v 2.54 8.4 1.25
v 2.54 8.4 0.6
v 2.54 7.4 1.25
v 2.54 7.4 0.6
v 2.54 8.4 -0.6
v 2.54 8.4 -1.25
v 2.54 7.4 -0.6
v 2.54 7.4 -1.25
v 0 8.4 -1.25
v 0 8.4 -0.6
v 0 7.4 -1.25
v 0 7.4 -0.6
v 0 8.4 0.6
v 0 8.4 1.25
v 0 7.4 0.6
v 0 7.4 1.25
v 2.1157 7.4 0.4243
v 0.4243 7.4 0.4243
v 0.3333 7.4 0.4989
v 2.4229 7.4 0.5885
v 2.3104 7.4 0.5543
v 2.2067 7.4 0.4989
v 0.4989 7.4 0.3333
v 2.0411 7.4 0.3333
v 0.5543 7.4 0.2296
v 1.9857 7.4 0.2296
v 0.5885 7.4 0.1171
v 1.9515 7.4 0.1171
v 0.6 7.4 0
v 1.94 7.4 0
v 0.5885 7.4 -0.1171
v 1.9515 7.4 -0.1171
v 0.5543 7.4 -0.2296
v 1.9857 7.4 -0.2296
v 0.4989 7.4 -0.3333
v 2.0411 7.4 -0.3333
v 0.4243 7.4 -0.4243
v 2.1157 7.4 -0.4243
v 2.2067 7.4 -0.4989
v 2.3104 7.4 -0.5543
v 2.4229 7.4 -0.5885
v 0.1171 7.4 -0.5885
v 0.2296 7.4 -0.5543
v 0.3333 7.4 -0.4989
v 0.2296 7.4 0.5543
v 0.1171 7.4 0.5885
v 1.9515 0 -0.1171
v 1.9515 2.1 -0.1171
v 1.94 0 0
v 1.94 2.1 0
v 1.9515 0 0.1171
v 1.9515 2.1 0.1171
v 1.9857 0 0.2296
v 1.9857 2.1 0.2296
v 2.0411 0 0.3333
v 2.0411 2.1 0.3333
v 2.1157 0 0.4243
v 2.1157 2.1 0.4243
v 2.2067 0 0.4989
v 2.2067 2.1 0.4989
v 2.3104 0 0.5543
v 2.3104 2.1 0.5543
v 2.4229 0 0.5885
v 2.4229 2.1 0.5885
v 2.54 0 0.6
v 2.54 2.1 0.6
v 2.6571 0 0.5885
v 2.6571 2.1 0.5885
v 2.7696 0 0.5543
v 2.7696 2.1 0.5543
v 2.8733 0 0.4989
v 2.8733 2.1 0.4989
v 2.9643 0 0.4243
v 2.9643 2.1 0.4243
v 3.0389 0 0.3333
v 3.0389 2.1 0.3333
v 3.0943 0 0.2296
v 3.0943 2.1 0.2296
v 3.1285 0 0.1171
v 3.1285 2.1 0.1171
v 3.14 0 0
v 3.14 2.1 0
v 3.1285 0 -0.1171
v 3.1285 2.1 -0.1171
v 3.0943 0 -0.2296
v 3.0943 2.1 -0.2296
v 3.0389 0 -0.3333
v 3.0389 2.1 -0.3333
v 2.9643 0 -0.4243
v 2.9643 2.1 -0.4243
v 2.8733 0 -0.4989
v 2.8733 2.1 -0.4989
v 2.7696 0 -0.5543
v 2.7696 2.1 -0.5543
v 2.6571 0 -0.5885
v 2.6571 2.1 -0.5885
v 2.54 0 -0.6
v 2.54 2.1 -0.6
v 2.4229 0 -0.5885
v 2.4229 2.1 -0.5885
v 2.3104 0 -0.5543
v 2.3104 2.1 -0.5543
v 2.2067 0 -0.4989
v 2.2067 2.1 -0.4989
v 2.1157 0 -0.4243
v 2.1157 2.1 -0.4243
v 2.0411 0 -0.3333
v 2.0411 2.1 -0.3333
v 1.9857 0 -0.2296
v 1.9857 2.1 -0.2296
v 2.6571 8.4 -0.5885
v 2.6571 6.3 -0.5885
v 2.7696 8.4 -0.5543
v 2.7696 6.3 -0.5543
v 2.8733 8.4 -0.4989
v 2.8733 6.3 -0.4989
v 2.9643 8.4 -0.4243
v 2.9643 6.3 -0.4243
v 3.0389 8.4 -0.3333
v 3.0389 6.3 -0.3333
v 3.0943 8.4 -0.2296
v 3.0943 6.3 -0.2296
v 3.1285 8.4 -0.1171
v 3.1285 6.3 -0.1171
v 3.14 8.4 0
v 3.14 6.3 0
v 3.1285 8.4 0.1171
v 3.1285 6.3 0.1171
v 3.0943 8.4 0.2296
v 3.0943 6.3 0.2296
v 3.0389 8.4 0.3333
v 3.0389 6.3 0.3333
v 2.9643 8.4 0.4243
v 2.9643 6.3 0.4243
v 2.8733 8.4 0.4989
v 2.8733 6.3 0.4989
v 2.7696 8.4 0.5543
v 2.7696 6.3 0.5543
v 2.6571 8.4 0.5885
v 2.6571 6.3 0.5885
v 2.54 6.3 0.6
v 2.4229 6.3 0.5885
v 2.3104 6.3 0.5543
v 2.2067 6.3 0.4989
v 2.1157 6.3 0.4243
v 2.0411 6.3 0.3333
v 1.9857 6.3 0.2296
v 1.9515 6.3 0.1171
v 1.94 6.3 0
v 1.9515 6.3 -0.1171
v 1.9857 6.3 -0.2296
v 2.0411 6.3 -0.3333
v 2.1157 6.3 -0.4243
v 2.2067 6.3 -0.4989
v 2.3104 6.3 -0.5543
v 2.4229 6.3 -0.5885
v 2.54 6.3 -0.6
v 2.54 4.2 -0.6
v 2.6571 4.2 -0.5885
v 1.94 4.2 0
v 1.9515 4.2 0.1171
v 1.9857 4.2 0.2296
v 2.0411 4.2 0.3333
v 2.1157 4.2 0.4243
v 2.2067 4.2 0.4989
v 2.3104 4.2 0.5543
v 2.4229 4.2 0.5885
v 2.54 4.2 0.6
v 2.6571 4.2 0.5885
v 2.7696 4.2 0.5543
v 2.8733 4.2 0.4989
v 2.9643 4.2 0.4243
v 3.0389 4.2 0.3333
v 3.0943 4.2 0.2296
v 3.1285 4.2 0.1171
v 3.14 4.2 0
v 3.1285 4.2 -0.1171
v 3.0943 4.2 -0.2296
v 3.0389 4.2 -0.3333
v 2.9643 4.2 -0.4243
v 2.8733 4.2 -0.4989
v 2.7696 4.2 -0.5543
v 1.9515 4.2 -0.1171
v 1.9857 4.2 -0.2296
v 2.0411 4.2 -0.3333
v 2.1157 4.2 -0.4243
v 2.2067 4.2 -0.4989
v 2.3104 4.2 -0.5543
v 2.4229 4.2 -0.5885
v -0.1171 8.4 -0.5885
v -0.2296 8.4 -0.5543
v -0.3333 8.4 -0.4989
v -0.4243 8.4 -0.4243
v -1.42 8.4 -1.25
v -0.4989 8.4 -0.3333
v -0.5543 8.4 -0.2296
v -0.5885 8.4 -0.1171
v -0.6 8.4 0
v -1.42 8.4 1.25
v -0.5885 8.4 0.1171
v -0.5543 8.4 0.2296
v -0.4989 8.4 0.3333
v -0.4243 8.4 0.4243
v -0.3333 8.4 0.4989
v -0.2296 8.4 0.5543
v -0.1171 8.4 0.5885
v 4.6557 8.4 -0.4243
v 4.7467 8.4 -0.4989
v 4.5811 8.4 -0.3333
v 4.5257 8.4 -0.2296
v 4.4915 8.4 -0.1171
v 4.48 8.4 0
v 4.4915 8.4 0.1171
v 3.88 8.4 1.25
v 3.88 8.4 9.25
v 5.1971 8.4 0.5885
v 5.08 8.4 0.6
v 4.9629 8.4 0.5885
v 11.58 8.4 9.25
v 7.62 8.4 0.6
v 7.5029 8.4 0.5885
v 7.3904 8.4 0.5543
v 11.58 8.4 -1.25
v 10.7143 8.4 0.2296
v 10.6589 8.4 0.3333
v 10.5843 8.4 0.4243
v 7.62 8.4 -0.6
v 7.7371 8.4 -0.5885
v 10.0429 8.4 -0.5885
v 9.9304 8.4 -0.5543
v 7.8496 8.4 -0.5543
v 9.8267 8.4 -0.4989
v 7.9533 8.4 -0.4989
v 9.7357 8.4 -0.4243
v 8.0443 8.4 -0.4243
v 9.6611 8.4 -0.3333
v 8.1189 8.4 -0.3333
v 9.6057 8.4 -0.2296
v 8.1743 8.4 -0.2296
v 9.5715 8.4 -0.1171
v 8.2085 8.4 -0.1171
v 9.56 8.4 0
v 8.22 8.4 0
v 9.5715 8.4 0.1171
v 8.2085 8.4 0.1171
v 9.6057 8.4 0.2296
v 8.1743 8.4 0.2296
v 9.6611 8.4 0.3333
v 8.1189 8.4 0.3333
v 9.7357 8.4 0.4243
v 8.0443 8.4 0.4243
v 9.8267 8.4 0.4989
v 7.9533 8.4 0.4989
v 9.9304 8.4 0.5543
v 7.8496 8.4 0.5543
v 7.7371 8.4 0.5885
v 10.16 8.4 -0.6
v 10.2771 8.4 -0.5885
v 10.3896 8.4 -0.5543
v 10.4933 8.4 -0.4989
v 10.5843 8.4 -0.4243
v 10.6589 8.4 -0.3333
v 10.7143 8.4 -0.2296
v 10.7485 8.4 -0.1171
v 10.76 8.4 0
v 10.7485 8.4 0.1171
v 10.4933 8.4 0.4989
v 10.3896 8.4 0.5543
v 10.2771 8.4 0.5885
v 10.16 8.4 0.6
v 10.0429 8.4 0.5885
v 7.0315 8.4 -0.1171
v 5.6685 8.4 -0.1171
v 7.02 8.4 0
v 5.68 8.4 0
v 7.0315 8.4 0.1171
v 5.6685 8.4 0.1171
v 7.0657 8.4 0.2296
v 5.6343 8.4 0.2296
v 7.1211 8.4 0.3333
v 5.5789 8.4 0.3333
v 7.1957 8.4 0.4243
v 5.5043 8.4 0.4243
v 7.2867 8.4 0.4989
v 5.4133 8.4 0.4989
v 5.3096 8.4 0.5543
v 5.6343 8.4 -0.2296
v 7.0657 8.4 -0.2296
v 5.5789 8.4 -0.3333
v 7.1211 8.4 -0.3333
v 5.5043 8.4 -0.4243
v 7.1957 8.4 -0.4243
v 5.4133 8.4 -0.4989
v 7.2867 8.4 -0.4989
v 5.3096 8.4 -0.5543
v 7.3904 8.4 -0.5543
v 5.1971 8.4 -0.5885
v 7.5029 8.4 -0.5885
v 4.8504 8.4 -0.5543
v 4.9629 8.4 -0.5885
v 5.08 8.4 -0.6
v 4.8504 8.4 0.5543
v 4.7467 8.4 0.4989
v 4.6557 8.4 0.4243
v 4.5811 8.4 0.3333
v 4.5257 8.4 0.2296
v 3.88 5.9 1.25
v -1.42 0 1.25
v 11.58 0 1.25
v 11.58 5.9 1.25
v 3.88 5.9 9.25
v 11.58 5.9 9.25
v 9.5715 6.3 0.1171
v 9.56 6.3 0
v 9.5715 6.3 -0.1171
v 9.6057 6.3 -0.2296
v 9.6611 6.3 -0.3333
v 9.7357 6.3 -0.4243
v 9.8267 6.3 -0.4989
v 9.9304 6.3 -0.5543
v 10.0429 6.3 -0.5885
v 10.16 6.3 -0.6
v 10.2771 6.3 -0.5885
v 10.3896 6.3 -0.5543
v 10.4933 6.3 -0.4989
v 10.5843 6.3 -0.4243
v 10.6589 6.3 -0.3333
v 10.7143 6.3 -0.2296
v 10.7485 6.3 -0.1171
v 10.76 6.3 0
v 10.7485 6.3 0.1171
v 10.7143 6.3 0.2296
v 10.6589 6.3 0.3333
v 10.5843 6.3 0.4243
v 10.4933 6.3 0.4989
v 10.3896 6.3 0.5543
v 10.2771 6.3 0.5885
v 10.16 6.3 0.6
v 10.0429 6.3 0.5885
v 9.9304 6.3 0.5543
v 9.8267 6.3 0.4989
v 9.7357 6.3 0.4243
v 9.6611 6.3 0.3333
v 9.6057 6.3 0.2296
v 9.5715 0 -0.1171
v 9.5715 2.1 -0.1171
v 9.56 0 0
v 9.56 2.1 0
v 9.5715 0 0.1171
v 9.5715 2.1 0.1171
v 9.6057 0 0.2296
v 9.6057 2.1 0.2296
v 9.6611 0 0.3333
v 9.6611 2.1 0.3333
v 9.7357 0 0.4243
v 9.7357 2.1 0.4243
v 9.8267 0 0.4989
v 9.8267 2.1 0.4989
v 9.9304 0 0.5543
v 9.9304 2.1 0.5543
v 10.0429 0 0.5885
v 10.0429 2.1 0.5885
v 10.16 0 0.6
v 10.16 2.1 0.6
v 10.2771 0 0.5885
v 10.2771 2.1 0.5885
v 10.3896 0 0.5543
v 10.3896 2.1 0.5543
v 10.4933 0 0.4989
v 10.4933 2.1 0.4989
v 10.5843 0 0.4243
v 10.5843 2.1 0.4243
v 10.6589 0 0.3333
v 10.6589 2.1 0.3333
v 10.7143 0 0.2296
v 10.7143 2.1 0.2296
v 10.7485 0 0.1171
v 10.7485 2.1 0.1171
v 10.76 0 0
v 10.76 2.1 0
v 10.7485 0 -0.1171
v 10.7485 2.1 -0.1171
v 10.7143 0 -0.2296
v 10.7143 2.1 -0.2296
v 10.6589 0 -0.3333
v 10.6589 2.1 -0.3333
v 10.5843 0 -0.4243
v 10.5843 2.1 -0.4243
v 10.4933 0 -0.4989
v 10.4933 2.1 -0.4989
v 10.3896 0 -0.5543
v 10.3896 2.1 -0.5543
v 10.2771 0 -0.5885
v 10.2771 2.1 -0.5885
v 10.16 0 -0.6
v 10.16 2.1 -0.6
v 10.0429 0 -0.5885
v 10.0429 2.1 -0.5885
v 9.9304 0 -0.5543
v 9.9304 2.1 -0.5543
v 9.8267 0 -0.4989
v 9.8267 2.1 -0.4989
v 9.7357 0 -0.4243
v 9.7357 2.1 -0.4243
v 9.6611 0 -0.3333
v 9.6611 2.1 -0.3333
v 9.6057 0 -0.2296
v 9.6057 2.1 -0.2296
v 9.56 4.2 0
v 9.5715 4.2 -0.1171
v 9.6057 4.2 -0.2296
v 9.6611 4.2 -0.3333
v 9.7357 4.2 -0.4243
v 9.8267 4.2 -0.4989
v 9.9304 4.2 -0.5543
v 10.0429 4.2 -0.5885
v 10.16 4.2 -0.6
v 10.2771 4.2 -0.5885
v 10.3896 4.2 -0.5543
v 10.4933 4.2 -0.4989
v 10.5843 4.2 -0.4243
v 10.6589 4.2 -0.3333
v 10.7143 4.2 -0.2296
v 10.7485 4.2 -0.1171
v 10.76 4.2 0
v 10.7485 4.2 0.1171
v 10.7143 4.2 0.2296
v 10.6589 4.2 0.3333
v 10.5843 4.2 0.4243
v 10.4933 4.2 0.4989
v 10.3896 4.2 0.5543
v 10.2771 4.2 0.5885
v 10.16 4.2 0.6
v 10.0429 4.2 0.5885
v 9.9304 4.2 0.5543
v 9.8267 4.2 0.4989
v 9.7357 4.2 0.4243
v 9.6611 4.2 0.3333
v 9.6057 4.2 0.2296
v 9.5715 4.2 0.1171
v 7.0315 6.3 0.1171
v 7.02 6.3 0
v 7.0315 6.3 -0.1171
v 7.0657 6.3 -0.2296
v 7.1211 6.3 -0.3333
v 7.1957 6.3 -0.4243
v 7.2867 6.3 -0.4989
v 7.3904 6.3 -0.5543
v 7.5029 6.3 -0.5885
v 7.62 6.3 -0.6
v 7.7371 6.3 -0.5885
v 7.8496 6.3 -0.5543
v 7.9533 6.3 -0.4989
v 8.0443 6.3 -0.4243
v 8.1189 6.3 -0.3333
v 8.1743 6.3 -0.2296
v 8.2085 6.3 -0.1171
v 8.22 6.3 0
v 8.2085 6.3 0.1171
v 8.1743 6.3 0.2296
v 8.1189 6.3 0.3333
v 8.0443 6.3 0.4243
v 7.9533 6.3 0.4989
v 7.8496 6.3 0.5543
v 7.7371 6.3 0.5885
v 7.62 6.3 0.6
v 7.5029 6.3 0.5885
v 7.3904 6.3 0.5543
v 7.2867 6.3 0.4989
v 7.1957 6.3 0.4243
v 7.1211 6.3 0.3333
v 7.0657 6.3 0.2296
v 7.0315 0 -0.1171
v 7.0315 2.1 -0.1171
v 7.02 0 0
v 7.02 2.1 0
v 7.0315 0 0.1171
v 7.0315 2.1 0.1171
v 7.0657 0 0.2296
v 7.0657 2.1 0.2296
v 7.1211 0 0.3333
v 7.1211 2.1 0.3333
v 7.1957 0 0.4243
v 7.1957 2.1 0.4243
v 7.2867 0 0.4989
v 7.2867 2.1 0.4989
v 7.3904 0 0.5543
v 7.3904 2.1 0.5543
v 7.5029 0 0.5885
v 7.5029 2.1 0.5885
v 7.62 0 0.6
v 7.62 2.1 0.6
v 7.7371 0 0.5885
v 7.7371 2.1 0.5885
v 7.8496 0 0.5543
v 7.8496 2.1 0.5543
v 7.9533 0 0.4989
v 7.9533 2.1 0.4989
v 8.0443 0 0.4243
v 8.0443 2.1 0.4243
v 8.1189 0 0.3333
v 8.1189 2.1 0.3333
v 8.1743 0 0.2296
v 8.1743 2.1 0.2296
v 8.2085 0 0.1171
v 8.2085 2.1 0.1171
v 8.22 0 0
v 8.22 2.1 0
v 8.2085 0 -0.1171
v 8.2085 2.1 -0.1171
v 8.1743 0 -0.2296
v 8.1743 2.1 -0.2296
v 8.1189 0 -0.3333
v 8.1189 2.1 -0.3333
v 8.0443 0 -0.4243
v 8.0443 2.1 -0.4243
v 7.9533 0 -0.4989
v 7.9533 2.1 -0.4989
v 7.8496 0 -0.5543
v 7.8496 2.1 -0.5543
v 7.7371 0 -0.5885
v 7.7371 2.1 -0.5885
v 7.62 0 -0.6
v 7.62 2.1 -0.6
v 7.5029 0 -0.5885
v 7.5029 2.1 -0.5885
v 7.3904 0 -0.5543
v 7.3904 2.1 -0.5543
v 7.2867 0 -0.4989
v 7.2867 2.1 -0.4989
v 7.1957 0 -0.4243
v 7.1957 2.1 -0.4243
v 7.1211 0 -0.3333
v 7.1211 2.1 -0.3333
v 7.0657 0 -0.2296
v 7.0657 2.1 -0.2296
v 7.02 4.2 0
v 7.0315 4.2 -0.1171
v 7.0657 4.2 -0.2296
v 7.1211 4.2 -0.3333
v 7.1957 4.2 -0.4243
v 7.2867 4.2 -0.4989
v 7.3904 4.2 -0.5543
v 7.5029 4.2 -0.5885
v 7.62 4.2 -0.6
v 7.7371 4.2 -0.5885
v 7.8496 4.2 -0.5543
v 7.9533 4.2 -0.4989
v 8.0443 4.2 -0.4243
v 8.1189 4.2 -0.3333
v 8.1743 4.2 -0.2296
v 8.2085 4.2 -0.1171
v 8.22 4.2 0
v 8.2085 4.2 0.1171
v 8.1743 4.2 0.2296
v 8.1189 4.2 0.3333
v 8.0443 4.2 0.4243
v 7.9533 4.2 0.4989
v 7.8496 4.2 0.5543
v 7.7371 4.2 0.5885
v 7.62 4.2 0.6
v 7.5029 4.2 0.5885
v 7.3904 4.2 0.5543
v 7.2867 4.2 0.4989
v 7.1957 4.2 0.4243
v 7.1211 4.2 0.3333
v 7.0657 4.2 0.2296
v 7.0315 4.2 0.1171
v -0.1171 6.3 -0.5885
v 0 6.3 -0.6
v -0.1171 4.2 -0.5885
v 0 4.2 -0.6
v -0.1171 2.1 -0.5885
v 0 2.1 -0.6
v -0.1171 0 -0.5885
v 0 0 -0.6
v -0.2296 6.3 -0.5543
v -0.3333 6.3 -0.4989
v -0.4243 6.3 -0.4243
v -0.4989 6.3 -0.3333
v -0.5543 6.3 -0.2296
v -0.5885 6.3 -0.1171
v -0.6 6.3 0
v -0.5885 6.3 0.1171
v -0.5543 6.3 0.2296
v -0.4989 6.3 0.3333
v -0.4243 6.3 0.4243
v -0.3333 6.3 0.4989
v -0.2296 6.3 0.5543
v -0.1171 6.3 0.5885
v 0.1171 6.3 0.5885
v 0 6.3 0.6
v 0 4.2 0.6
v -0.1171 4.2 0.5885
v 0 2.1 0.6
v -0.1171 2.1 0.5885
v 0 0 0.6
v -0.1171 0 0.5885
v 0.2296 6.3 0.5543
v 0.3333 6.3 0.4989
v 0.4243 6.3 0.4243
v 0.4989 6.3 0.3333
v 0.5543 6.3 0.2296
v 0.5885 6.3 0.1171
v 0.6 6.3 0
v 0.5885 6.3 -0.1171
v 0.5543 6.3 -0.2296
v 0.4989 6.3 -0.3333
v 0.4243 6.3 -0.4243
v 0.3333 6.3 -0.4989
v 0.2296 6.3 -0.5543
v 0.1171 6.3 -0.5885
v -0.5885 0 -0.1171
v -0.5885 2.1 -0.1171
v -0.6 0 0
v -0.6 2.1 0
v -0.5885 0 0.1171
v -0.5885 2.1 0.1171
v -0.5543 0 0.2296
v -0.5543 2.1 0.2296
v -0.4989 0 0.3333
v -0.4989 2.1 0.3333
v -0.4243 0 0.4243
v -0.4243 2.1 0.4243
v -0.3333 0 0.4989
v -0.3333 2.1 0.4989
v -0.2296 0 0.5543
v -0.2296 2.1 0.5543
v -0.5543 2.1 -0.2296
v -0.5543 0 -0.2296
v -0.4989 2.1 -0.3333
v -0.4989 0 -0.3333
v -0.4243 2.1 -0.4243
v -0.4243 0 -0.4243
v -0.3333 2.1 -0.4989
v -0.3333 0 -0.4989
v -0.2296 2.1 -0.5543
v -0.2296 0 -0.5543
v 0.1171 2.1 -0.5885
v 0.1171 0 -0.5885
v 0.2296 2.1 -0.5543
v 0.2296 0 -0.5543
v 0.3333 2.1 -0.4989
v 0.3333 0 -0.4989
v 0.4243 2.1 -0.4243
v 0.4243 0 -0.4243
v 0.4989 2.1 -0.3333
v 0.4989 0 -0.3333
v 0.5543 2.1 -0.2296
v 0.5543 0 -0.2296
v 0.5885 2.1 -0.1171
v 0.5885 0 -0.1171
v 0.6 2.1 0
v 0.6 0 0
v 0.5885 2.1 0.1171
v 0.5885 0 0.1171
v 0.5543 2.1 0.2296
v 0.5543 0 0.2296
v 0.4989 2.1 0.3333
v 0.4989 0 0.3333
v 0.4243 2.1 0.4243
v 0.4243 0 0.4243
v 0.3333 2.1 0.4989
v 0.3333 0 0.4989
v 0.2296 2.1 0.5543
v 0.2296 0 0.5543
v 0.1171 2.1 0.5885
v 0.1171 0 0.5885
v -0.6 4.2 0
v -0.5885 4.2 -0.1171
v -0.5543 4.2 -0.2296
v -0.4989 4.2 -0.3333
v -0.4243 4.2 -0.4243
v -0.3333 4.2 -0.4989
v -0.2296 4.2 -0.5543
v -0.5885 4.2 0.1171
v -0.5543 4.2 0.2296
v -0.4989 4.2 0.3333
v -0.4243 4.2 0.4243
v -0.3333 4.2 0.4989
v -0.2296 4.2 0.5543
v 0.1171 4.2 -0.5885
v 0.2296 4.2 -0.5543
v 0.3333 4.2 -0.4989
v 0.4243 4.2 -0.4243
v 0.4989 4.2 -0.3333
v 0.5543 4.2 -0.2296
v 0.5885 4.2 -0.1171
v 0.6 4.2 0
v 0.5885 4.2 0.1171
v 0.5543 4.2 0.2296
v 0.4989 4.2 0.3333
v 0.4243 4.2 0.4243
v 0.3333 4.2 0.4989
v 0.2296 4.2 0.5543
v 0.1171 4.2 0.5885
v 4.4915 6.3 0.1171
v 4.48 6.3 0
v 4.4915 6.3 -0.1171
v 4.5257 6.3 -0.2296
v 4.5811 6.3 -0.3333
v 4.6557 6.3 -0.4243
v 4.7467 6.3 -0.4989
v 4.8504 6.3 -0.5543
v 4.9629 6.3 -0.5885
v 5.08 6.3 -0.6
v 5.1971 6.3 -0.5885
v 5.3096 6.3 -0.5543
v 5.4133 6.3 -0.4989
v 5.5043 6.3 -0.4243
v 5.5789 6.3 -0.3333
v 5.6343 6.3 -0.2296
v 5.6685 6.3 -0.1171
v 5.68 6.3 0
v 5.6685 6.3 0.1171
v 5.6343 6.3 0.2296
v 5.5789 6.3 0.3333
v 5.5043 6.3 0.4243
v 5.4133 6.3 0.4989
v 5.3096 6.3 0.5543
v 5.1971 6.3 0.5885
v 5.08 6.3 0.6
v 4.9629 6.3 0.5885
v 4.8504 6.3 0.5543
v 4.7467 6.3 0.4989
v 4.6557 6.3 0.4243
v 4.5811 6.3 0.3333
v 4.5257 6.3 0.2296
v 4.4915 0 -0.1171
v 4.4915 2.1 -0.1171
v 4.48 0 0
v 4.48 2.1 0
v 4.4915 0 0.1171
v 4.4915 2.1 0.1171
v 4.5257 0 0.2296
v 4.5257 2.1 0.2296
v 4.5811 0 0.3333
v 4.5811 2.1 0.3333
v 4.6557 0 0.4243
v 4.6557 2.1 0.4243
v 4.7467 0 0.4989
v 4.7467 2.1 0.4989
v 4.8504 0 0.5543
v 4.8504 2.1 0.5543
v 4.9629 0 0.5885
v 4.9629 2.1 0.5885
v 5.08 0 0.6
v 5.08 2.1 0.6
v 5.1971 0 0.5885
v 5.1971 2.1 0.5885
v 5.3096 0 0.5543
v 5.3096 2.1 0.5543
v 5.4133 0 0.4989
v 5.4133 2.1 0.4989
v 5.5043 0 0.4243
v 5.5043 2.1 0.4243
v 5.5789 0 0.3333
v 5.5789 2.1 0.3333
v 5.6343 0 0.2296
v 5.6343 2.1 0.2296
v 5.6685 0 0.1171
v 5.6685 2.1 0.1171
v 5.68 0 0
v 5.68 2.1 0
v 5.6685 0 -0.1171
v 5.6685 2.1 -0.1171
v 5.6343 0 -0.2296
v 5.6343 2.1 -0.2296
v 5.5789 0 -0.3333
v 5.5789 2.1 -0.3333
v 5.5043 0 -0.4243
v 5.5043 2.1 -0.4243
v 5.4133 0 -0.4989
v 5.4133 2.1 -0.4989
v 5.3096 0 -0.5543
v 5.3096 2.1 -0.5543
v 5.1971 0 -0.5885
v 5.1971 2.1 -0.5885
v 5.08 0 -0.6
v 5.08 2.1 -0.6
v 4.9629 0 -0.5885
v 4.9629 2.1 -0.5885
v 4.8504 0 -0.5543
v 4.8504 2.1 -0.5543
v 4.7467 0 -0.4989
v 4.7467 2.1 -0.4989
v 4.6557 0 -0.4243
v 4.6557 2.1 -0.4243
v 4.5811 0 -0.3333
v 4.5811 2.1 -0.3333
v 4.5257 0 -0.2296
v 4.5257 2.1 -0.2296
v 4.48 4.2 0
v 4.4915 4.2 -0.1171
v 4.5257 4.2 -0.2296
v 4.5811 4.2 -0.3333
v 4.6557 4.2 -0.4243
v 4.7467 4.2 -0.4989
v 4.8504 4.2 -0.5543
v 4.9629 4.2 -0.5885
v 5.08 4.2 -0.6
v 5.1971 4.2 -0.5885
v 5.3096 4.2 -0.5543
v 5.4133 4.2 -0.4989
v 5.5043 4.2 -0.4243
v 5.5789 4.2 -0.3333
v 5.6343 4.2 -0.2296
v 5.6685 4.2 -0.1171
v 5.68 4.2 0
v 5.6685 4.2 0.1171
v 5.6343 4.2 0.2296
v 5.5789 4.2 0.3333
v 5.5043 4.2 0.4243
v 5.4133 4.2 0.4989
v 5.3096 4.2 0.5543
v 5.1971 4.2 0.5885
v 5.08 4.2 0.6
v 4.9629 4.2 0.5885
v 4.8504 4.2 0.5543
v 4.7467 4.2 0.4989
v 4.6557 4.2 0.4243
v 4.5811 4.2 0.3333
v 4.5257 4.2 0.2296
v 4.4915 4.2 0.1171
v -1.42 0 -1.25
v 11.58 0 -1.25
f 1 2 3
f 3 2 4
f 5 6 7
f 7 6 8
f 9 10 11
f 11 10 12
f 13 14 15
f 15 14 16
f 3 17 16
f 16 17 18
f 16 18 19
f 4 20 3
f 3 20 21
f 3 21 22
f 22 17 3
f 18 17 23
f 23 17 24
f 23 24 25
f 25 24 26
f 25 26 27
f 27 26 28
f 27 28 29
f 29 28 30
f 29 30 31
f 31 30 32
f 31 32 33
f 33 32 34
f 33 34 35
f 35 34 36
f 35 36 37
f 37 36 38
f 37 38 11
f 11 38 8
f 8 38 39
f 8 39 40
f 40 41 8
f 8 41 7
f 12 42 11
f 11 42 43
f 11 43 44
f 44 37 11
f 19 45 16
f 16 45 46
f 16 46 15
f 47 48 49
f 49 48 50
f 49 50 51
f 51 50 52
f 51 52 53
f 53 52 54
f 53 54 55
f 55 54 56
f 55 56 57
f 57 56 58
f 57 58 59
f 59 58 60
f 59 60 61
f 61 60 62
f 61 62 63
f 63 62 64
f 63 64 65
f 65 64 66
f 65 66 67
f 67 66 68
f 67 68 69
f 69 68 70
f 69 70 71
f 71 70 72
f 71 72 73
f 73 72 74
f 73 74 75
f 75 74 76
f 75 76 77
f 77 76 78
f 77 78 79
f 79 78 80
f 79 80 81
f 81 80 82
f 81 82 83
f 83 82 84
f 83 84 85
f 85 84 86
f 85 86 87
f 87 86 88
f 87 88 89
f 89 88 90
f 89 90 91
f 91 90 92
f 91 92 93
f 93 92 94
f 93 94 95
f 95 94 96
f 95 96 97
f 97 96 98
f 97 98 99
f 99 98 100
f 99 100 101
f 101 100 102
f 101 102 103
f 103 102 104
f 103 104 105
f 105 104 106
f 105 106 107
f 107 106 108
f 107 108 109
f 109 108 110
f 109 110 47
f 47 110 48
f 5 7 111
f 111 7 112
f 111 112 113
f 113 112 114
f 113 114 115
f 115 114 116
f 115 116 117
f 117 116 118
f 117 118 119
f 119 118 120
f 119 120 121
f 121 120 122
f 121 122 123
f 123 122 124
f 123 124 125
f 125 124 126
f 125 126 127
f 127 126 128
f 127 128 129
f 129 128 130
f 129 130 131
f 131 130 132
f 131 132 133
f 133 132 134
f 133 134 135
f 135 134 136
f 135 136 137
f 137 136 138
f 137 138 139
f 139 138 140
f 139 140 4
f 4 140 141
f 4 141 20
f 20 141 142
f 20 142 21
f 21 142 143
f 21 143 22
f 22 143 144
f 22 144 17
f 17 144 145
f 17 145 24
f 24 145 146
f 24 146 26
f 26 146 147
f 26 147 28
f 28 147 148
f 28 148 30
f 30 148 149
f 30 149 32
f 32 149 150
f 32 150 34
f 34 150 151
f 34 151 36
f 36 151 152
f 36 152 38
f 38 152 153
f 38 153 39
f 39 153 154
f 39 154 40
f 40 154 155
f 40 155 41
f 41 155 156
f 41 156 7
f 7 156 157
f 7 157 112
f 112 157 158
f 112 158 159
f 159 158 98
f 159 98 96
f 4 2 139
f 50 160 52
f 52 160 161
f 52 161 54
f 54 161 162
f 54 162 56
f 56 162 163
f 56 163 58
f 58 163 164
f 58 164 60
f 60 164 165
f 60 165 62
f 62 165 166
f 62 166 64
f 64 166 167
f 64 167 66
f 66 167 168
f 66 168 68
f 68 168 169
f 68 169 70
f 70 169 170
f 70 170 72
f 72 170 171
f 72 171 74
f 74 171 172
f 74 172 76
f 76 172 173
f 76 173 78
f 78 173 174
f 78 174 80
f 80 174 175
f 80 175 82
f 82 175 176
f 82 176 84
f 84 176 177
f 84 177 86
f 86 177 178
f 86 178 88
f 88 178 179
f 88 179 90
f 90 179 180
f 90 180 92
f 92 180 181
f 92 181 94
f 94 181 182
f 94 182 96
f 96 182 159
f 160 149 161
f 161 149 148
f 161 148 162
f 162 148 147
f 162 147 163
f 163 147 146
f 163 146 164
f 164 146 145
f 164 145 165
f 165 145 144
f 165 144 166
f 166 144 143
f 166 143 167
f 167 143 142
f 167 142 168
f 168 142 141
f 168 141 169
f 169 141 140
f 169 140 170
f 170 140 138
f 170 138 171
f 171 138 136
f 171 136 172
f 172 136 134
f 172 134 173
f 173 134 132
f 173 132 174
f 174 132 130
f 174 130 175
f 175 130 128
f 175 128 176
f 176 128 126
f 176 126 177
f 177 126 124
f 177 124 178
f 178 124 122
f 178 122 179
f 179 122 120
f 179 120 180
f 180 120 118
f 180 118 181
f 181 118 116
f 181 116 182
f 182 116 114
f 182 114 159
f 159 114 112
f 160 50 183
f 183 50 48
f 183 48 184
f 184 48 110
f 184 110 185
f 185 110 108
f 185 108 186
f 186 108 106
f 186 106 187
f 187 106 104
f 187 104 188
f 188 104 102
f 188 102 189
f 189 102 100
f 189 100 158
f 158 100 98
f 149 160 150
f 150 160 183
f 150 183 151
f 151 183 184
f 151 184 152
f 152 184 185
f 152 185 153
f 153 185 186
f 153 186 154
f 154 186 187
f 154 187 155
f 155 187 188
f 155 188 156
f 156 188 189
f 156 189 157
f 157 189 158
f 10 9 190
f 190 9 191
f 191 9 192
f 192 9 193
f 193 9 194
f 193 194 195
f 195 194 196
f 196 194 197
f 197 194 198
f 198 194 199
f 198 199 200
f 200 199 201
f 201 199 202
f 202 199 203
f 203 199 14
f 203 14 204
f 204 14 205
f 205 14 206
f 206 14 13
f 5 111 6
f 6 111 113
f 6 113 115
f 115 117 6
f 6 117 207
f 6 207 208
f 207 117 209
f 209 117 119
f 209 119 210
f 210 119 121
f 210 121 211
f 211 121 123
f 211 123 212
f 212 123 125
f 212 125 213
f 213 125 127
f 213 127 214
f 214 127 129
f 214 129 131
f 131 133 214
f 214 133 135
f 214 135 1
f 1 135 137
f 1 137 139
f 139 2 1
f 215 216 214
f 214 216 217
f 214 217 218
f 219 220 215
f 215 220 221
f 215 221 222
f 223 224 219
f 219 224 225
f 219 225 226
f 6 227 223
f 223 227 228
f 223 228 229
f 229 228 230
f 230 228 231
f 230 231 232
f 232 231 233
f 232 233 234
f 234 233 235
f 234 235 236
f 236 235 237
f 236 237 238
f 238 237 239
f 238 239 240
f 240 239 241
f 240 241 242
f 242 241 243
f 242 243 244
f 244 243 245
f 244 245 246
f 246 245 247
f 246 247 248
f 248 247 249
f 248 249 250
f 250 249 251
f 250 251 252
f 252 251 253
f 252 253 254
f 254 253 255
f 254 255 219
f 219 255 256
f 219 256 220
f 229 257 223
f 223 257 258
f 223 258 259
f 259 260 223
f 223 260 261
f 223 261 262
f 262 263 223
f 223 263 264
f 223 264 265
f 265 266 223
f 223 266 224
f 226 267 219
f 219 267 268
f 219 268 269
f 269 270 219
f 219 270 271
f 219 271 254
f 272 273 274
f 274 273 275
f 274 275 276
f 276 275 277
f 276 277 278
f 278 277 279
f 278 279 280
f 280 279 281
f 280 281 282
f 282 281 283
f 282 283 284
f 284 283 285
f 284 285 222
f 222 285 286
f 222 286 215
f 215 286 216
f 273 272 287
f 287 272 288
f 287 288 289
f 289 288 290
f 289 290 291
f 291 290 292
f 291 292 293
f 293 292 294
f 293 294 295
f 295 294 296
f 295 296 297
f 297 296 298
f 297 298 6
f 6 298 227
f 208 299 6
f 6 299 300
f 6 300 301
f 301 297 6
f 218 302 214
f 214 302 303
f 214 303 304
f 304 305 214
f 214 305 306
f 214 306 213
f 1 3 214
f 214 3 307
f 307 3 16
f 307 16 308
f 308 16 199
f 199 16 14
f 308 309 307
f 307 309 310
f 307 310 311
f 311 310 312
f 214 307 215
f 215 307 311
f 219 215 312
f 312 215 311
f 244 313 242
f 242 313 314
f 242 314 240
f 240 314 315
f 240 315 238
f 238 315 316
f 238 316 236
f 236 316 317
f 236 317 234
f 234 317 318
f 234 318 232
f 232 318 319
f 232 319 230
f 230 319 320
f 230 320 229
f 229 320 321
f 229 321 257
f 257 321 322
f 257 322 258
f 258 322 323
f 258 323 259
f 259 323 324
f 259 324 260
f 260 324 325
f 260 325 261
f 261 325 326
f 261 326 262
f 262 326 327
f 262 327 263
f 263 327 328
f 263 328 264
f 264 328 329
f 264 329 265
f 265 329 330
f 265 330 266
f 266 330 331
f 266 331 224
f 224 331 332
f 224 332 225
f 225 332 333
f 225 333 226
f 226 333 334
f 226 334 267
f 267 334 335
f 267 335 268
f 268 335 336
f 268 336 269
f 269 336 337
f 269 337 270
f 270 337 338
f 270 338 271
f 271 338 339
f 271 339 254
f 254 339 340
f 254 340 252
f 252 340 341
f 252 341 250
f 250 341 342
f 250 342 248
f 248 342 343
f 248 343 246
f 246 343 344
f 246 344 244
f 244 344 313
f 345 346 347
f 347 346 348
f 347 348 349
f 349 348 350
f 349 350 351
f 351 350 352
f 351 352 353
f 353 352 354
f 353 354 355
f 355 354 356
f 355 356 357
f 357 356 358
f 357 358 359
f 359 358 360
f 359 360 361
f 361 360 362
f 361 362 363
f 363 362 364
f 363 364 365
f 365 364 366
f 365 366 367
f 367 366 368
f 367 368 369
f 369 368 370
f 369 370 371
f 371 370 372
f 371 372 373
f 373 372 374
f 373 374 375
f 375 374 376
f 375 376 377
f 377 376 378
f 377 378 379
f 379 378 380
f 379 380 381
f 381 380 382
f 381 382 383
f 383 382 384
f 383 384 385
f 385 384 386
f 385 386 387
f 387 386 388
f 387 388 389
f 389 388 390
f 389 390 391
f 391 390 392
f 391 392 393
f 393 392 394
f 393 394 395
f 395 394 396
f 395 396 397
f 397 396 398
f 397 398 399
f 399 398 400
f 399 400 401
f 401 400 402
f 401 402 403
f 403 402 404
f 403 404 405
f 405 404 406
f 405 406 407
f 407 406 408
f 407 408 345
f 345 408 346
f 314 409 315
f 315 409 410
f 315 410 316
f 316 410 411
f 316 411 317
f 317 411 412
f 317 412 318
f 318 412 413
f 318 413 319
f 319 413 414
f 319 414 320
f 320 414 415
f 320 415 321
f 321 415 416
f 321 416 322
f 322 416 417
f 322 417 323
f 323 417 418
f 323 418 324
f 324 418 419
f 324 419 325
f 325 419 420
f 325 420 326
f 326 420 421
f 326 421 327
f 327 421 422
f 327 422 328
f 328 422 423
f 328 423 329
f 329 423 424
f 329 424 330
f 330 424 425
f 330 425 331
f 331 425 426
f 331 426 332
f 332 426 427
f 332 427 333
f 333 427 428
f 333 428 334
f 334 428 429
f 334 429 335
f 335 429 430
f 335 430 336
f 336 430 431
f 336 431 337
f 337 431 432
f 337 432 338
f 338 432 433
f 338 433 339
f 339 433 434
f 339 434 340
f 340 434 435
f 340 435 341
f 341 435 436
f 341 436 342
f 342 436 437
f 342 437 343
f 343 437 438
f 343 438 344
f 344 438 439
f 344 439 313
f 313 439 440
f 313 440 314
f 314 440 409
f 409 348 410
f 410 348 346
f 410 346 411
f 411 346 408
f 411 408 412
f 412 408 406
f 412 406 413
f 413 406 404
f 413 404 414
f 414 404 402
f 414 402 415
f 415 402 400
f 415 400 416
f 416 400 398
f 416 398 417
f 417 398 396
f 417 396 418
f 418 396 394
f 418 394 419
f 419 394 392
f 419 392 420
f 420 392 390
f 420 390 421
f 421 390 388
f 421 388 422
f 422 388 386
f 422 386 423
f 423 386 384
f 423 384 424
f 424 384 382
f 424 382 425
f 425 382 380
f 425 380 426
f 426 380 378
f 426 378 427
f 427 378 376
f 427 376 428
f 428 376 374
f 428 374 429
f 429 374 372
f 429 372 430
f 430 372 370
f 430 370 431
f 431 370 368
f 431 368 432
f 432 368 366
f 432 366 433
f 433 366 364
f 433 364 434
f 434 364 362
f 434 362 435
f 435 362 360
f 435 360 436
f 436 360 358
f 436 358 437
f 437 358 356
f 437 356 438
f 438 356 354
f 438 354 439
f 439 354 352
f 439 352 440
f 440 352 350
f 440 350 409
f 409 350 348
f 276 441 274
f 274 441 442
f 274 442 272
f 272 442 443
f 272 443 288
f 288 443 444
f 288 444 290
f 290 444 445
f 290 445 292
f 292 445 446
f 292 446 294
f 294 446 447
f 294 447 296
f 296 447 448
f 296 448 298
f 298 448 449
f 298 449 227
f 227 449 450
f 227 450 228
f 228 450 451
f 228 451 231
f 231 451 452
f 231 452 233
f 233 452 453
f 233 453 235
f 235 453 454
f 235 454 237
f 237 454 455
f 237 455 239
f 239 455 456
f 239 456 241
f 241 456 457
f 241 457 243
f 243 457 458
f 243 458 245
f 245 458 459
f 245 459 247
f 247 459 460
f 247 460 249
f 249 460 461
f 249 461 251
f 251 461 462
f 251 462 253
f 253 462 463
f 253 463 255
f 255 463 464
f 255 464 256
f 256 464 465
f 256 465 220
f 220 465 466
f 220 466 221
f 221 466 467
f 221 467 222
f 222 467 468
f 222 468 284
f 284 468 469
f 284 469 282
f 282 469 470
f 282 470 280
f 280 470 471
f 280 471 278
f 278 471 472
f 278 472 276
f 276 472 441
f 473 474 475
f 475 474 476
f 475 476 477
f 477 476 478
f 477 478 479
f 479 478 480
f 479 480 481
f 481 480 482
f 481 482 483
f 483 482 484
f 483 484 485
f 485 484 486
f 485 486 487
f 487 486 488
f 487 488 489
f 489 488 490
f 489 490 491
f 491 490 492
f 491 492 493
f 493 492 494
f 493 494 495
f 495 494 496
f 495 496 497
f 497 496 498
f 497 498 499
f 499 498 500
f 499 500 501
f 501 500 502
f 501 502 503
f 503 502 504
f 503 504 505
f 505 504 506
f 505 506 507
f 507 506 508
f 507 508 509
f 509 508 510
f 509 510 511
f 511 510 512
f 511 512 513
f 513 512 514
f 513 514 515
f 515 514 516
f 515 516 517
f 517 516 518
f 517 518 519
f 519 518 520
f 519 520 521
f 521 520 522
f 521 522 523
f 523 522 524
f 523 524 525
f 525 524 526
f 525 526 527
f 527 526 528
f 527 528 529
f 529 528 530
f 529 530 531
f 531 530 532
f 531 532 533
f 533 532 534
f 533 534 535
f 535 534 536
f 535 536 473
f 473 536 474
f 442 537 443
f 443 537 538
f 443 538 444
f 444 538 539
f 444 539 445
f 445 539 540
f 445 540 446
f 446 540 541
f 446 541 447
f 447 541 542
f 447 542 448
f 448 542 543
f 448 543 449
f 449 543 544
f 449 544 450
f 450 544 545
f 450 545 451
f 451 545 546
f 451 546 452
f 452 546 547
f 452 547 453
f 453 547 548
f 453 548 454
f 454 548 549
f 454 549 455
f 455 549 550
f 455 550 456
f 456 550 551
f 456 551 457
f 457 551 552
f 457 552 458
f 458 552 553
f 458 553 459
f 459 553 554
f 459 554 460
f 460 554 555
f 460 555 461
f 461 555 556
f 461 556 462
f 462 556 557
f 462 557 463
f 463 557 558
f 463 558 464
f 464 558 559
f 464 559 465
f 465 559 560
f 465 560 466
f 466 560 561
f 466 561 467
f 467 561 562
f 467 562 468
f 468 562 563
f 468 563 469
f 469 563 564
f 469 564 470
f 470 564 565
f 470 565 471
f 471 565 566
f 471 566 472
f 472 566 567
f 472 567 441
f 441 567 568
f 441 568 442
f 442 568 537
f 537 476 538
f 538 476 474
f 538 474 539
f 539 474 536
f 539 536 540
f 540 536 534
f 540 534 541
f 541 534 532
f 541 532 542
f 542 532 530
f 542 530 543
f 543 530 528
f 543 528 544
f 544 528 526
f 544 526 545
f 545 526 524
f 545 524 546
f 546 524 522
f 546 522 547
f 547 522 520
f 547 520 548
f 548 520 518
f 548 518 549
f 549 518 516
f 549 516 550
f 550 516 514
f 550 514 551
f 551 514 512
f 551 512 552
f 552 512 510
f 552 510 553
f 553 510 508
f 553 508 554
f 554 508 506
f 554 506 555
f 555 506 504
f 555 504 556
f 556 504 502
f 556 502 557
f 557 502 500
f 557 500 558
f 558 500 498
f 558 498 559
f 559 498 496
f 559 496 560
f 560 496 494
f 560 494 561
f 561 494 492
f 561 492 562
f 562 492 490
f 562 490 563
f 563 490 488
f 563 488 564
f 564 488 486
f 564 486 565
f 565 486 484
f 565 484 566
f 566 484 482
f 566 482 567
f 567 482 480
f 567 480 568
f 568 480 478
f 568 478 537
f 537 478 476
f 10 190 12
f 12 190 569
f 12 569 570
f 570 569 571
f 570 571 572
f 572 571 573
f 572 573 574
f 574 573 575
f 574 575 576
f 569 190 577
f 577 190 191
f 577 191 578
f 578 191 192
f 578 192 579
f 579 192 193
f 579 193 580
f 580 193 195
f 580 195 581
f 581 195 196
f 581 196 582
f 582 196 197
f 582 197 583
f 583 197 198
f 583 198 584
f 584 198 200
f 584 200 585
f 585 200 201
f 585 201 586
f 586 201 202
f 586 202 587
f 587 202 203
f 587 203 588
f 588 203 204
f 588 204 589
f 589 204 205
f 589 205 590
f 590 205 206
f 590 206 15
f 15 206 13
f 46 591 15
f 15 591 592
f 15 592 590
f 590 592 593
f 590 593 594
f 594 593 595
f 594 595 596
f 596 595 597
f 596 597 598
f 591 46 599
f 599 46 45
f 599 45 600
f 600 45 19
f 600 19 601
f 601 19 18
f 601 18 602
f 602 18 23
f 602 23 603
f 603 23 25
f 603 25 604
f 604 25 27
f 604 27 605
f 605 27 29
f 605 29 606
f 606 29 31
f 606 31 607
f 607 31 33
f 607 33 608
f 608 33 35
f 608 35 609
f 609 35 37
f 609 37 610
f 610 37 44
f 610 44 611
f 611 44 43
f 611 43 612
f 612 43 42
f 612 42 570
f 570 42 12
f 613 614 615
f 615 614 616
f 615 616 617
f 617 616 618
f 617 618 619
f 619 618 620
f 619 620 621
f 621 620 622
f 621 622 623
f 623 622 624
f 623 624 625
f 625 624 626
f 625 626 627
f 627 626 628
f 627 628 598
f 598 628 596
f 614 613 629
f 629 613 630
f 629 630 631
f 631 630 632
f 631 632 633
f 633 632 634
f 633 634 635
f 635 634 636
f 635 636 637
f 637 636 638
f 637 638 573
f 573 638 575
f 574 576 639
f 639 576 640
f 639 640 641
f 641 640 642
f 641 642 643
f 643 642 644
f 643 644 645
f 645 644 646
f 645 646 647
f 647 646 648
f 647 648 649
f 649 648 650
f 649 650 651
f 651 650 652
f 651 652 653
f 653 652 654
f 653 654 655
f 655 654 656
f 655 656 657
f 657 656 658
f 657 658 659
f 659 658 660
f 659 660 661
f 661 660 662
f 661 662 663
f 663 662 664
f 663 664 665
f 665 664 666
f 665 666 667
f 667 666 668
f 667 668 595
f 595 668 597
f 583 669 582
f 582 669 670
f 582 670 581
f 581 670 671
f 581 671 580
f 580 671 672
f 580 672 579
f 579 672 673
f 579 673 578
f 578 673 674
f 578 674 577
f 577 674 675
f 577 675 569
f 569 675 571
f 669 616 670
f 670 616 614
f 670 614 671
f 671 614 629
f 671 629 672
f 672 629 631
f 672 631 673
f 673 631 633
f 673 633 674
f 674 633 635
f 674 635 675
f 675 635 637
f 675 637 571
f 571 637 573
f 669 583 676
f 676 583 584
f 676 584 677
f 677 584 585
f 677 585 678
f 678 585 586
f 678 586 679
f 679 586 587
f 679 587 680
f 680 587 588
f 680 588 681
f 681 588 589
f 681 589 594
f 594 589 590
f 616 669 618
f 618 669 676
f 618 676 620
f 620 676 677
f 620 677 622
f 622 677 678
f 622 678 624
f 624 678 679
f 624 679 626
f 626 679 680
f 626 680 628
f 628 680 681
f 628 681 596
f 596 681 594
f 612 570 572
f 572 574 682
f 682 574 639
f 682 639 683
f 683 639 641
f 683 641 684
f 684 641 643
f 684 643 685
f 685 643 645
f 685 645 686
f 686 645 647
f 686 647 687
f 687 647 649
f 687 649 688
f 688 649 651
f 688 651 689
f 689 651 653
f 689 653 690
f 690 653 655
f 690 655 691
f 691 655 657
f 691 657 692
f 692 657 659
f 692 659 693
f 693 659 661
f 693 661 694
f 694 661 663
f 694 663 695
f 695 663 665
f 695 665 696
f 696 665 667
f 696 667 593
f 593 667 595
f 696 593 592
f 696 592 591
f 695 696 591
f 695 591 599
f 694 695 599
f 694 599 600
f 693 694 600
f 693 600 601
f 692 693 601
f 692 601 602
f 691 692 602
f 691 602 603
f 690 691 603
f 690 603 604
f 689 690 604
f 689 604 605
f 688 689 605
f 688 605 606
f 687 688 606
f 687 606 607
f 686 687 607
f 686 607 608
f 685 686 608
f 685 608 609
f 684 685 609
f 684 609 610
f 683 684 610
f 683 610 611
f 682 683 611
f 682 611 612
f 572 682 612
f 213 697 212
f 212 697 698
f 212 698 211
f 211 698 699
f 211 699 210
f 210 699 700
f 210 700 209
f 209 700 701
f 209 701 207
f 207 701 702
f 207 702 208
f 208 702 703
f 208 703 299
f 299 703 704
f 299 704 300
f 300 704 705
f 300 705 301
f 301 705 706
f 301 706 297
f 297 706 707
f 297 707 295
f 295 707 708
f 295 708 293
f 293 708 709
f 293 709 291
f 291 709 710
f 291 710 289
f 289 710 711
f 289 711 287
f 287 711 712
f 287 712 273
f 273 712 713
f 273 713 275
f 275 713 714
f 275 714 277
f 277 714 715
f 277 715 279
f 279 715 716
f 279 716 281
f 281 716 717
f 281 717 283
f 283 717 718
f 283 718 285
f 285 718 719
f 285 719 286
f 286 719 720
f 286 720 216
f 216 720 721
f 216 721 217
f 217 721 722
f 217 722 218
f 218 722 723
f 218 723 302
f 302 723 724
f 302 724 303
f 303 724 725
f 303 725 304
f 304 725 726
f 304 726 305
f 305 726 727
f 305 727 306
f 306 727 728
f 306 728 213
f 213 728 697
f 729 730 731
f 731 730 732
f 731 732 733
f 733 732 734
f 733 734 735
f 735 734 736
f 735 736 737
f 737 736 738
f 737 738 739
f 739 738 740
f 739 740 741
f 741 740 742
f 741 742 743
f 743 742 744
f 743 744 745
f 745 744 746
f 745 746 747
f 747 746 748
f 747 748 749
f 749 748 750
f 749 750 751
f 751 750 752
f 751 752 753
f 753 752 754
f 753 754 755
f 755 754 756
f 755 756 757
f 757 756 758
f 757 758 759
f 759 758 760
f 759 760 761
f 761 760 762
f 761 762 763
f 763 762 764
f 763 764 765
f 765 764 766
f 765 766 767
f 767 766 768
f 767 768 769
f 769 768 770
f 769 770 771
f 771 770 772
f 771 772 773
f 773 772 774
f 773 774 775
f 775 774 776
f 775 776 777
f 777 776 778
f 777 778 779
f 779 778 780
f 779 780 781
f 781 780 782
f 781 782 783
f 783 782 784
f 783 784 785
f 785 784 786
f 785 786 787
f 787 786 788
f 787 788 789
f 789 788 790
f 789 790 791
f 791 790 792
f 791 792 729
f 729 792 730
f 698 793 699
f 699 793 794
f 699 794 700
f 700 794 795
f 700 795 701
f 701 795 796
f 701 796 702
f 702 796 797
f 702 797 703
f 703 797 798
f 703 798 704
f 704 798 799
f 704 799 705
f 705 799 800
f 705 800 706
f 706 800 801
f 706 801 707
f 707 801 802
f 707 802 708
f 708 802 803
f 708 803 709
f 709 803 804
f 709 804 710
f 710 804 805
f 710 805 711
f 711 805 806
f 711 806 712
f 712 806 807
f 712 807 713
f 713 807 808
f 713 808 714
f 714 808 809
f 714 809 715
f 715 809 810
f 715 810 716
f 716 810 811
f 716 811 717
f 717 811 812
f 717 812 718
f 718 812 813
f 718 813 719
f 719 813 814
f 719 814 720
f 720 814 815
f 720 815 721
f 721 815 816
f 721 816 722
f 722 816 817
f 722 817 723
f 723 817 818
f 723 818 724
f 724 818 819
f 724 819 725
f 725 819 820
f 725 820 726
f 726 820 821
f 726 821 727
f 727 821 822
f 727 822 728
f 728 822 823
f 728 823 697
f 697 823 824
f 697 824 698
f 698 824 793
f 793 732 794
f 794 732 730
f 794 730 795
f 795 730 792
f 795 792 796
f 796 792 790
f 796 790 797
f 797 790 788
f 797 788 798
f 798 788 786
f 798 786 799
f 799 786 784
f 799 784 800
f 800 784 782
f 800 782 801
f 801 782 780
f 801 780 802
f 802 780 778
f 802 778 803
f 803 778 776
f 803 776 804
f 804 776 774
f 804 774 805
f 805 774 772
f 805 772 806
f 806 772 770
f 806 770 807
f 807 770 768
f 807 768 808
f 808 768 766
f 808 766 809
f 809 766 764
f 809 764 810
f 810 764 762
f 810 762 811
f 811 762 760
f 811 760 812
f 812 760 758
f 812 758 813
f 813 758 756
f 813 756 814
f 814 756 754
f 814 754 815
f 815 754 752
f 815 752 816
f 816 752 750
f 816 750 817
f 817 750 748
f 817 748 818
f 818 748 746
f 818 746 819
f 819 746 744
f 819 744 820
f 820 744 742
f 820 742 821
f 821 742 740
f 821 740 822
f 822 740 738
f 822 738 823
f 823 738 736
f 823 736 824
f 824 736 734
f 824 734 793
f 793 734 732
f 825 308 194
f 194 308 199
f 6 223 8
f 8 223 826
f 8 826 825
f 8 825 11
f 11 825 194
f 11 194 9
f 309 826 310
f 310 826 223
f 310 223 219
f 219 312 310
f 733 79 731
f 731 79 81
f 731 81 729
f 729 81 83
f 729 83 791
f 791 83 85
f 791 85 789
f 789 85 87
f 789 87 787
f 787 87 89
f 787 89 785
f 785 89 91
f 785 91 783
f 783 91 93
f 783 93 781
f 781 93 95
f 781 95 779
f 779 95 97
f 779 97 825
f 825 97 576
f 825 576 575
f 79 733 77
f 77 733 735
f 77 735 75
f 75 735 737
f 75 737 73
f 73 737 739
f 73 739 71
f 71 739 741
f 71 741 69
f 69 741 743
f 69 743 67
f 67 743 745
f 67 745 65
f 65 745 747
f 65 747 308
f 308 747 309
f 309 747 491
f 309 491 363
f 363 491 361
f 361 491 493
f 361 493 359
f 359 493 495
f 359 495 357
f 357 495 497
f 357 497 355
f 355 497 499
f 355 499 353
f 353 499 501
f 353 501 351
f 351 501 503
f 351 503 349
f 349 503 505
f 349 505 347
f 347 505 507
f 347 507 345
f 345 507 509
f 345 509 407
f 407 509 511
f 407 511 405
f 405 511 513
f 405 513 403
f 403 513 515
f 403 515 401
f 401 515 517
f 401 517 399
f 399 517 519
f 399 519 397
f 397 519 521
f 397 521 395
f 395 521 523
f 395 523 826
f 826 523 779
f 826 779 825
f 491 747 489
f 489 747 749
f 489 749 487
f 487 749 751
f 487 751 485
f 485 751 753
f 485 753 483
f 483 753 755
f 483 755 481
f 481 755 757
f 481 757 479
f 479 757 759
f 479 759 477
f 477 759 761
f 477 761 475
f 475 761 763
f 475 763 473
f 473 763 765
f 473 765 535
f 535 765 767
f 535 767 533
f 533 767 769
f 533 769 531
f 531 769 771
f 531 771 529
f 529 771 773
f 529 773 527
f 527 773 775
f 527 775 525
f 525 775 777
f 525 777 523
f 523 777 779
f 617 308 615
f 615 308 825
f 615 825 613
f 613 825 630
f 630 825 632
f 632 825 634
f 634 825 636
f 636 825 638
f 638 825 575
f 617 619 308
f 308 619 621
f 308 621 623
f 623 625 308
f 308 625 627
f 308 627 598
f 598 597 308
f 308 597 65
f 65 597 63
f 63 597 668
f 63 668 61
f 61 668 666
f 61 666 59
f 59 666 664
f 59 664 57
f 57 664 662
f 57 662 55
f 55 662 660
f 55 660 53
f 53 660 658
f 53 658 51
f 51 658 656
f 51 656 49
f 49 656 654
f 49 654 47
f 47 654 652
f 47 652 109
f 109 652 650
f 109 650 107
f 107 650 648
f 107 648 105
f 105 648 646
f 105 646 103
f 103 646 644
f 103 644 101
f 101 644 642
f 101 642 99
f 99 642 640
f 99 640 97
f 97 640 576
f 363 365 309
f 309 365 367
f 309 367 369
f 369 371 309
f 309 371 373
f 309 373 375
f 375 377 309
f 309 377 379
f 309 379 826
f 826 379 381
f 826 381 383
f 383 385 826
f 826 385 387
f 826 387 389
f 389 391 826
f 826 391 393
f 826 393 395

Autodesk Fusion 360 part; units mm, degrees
sketch "Skizze1" plane through (0, 0, 0) normal (0, 1, 0) x (1, 0, 0)
  circle A0 centre (0, 0) radius 0.6
  circle A1 centre (2.54, 0) radius 0.6
  circle A2 centre (5.08, 0) radius 0.6
  circle A3 centre (7.62, 0) radius 0.6
  circle A4 centre (10.16, 0) radius 0.6
  line L0 (11.58, 1.25) -> (-1.42, 1.25)
  line L1 (-1.42, 1.25) -> (-1.42, -1.25)
  line L2 (-1.42, -1.25) -> (11.58, -1.25)
  line L3 (11.58, -1.25) -> (11.58, 1.25)
  line L4 (11.58, 1.25) -> (-1.42, -1.25) construction
  line L5 (-1.42, 1.25) -> (11.58, -1.25) construction
  point P0 (5.08, 0)
  dimension "d1" = 1.2
  dimension "d4" = 2.54
  dimension "d5" = 0
  dimension "d6" = 13
  dimension "d7" = 2.5
extrude "Extrusion1" add sketch "Skizze1" along normal blind 8.4
sketch "Skizze4" plane through (0, 0, 1.25) normal (0, 0, 1) x (1, 0, 0)
  line L0 (-1.42, 0) -> (11.58, 0)
  line L1 (11.58, 0) -> (11.58, 8.4)
  line L2 (11.58, 8.4) -> (-1.42, 8.4)
  line L3 (-1.42, 8.4) -> (-1.42, 0)
  line L4 (11.58, 8.4) -> (3.88, 8.4)
  line L5 (3.88, 8.4) -> (3.88, 5.9)
  line L6 (3.88, 5.9) -> (11.58, 5.9)
  line L7 (11.58, 5.9) -> (11.58, 8.4)
  dimension "d10" = 7.7
  dimension "d11" = 2.5
extrude "Extrusion2" add sketch "Skizze4" along normal blind 8 contours L1 L2 L4 L5 L6 L7
sketch "Skizze5" plane through (0, 8.4, 0) normal (0, 1, 0) x (-1, 0, 0)
  circle A0 centre (-7.62, 0) radius 0.6
  circle A1 centre (-5.08, 0) radius 0.6
  circle A2 centre (-10.16, 0) radius 0.6
  circle A3 centre (-2.54, 0) radius 0.6
  circle A4 centre (0, 0) radius 0.6
  line L0 (-11.58, 9.25) -> (-11.58, -1.25)
  line L1 (-11.58, -1.25) -> (1.42, -1.25)
  line L2 (1.42, -1.25) -> (1.42, 1.25)
  line L3 (1.42, 1.25) -> (-3.88, 1.25)
  line L4 (-3.88, 1.25) -> (-3.88, 9.25)
  line L5 (-3.88, 9.25) -> (-11.58, 9.25)
  line L6 (0, -1.25) -> (-2.54, -1.25)
  line L7 (-2.54, -1.25) -> (-2.54, 1.25)
  line L8 (-2.54, 1.25) -> (0, 1.25)
  line L9 (0, 1.25) -> (0, -1.25)
extrude "Extrusion3" cut sketch "Skizze5" against normal blind 1 contours A3 A4 L1 L3 L6 L7 L8 L9
